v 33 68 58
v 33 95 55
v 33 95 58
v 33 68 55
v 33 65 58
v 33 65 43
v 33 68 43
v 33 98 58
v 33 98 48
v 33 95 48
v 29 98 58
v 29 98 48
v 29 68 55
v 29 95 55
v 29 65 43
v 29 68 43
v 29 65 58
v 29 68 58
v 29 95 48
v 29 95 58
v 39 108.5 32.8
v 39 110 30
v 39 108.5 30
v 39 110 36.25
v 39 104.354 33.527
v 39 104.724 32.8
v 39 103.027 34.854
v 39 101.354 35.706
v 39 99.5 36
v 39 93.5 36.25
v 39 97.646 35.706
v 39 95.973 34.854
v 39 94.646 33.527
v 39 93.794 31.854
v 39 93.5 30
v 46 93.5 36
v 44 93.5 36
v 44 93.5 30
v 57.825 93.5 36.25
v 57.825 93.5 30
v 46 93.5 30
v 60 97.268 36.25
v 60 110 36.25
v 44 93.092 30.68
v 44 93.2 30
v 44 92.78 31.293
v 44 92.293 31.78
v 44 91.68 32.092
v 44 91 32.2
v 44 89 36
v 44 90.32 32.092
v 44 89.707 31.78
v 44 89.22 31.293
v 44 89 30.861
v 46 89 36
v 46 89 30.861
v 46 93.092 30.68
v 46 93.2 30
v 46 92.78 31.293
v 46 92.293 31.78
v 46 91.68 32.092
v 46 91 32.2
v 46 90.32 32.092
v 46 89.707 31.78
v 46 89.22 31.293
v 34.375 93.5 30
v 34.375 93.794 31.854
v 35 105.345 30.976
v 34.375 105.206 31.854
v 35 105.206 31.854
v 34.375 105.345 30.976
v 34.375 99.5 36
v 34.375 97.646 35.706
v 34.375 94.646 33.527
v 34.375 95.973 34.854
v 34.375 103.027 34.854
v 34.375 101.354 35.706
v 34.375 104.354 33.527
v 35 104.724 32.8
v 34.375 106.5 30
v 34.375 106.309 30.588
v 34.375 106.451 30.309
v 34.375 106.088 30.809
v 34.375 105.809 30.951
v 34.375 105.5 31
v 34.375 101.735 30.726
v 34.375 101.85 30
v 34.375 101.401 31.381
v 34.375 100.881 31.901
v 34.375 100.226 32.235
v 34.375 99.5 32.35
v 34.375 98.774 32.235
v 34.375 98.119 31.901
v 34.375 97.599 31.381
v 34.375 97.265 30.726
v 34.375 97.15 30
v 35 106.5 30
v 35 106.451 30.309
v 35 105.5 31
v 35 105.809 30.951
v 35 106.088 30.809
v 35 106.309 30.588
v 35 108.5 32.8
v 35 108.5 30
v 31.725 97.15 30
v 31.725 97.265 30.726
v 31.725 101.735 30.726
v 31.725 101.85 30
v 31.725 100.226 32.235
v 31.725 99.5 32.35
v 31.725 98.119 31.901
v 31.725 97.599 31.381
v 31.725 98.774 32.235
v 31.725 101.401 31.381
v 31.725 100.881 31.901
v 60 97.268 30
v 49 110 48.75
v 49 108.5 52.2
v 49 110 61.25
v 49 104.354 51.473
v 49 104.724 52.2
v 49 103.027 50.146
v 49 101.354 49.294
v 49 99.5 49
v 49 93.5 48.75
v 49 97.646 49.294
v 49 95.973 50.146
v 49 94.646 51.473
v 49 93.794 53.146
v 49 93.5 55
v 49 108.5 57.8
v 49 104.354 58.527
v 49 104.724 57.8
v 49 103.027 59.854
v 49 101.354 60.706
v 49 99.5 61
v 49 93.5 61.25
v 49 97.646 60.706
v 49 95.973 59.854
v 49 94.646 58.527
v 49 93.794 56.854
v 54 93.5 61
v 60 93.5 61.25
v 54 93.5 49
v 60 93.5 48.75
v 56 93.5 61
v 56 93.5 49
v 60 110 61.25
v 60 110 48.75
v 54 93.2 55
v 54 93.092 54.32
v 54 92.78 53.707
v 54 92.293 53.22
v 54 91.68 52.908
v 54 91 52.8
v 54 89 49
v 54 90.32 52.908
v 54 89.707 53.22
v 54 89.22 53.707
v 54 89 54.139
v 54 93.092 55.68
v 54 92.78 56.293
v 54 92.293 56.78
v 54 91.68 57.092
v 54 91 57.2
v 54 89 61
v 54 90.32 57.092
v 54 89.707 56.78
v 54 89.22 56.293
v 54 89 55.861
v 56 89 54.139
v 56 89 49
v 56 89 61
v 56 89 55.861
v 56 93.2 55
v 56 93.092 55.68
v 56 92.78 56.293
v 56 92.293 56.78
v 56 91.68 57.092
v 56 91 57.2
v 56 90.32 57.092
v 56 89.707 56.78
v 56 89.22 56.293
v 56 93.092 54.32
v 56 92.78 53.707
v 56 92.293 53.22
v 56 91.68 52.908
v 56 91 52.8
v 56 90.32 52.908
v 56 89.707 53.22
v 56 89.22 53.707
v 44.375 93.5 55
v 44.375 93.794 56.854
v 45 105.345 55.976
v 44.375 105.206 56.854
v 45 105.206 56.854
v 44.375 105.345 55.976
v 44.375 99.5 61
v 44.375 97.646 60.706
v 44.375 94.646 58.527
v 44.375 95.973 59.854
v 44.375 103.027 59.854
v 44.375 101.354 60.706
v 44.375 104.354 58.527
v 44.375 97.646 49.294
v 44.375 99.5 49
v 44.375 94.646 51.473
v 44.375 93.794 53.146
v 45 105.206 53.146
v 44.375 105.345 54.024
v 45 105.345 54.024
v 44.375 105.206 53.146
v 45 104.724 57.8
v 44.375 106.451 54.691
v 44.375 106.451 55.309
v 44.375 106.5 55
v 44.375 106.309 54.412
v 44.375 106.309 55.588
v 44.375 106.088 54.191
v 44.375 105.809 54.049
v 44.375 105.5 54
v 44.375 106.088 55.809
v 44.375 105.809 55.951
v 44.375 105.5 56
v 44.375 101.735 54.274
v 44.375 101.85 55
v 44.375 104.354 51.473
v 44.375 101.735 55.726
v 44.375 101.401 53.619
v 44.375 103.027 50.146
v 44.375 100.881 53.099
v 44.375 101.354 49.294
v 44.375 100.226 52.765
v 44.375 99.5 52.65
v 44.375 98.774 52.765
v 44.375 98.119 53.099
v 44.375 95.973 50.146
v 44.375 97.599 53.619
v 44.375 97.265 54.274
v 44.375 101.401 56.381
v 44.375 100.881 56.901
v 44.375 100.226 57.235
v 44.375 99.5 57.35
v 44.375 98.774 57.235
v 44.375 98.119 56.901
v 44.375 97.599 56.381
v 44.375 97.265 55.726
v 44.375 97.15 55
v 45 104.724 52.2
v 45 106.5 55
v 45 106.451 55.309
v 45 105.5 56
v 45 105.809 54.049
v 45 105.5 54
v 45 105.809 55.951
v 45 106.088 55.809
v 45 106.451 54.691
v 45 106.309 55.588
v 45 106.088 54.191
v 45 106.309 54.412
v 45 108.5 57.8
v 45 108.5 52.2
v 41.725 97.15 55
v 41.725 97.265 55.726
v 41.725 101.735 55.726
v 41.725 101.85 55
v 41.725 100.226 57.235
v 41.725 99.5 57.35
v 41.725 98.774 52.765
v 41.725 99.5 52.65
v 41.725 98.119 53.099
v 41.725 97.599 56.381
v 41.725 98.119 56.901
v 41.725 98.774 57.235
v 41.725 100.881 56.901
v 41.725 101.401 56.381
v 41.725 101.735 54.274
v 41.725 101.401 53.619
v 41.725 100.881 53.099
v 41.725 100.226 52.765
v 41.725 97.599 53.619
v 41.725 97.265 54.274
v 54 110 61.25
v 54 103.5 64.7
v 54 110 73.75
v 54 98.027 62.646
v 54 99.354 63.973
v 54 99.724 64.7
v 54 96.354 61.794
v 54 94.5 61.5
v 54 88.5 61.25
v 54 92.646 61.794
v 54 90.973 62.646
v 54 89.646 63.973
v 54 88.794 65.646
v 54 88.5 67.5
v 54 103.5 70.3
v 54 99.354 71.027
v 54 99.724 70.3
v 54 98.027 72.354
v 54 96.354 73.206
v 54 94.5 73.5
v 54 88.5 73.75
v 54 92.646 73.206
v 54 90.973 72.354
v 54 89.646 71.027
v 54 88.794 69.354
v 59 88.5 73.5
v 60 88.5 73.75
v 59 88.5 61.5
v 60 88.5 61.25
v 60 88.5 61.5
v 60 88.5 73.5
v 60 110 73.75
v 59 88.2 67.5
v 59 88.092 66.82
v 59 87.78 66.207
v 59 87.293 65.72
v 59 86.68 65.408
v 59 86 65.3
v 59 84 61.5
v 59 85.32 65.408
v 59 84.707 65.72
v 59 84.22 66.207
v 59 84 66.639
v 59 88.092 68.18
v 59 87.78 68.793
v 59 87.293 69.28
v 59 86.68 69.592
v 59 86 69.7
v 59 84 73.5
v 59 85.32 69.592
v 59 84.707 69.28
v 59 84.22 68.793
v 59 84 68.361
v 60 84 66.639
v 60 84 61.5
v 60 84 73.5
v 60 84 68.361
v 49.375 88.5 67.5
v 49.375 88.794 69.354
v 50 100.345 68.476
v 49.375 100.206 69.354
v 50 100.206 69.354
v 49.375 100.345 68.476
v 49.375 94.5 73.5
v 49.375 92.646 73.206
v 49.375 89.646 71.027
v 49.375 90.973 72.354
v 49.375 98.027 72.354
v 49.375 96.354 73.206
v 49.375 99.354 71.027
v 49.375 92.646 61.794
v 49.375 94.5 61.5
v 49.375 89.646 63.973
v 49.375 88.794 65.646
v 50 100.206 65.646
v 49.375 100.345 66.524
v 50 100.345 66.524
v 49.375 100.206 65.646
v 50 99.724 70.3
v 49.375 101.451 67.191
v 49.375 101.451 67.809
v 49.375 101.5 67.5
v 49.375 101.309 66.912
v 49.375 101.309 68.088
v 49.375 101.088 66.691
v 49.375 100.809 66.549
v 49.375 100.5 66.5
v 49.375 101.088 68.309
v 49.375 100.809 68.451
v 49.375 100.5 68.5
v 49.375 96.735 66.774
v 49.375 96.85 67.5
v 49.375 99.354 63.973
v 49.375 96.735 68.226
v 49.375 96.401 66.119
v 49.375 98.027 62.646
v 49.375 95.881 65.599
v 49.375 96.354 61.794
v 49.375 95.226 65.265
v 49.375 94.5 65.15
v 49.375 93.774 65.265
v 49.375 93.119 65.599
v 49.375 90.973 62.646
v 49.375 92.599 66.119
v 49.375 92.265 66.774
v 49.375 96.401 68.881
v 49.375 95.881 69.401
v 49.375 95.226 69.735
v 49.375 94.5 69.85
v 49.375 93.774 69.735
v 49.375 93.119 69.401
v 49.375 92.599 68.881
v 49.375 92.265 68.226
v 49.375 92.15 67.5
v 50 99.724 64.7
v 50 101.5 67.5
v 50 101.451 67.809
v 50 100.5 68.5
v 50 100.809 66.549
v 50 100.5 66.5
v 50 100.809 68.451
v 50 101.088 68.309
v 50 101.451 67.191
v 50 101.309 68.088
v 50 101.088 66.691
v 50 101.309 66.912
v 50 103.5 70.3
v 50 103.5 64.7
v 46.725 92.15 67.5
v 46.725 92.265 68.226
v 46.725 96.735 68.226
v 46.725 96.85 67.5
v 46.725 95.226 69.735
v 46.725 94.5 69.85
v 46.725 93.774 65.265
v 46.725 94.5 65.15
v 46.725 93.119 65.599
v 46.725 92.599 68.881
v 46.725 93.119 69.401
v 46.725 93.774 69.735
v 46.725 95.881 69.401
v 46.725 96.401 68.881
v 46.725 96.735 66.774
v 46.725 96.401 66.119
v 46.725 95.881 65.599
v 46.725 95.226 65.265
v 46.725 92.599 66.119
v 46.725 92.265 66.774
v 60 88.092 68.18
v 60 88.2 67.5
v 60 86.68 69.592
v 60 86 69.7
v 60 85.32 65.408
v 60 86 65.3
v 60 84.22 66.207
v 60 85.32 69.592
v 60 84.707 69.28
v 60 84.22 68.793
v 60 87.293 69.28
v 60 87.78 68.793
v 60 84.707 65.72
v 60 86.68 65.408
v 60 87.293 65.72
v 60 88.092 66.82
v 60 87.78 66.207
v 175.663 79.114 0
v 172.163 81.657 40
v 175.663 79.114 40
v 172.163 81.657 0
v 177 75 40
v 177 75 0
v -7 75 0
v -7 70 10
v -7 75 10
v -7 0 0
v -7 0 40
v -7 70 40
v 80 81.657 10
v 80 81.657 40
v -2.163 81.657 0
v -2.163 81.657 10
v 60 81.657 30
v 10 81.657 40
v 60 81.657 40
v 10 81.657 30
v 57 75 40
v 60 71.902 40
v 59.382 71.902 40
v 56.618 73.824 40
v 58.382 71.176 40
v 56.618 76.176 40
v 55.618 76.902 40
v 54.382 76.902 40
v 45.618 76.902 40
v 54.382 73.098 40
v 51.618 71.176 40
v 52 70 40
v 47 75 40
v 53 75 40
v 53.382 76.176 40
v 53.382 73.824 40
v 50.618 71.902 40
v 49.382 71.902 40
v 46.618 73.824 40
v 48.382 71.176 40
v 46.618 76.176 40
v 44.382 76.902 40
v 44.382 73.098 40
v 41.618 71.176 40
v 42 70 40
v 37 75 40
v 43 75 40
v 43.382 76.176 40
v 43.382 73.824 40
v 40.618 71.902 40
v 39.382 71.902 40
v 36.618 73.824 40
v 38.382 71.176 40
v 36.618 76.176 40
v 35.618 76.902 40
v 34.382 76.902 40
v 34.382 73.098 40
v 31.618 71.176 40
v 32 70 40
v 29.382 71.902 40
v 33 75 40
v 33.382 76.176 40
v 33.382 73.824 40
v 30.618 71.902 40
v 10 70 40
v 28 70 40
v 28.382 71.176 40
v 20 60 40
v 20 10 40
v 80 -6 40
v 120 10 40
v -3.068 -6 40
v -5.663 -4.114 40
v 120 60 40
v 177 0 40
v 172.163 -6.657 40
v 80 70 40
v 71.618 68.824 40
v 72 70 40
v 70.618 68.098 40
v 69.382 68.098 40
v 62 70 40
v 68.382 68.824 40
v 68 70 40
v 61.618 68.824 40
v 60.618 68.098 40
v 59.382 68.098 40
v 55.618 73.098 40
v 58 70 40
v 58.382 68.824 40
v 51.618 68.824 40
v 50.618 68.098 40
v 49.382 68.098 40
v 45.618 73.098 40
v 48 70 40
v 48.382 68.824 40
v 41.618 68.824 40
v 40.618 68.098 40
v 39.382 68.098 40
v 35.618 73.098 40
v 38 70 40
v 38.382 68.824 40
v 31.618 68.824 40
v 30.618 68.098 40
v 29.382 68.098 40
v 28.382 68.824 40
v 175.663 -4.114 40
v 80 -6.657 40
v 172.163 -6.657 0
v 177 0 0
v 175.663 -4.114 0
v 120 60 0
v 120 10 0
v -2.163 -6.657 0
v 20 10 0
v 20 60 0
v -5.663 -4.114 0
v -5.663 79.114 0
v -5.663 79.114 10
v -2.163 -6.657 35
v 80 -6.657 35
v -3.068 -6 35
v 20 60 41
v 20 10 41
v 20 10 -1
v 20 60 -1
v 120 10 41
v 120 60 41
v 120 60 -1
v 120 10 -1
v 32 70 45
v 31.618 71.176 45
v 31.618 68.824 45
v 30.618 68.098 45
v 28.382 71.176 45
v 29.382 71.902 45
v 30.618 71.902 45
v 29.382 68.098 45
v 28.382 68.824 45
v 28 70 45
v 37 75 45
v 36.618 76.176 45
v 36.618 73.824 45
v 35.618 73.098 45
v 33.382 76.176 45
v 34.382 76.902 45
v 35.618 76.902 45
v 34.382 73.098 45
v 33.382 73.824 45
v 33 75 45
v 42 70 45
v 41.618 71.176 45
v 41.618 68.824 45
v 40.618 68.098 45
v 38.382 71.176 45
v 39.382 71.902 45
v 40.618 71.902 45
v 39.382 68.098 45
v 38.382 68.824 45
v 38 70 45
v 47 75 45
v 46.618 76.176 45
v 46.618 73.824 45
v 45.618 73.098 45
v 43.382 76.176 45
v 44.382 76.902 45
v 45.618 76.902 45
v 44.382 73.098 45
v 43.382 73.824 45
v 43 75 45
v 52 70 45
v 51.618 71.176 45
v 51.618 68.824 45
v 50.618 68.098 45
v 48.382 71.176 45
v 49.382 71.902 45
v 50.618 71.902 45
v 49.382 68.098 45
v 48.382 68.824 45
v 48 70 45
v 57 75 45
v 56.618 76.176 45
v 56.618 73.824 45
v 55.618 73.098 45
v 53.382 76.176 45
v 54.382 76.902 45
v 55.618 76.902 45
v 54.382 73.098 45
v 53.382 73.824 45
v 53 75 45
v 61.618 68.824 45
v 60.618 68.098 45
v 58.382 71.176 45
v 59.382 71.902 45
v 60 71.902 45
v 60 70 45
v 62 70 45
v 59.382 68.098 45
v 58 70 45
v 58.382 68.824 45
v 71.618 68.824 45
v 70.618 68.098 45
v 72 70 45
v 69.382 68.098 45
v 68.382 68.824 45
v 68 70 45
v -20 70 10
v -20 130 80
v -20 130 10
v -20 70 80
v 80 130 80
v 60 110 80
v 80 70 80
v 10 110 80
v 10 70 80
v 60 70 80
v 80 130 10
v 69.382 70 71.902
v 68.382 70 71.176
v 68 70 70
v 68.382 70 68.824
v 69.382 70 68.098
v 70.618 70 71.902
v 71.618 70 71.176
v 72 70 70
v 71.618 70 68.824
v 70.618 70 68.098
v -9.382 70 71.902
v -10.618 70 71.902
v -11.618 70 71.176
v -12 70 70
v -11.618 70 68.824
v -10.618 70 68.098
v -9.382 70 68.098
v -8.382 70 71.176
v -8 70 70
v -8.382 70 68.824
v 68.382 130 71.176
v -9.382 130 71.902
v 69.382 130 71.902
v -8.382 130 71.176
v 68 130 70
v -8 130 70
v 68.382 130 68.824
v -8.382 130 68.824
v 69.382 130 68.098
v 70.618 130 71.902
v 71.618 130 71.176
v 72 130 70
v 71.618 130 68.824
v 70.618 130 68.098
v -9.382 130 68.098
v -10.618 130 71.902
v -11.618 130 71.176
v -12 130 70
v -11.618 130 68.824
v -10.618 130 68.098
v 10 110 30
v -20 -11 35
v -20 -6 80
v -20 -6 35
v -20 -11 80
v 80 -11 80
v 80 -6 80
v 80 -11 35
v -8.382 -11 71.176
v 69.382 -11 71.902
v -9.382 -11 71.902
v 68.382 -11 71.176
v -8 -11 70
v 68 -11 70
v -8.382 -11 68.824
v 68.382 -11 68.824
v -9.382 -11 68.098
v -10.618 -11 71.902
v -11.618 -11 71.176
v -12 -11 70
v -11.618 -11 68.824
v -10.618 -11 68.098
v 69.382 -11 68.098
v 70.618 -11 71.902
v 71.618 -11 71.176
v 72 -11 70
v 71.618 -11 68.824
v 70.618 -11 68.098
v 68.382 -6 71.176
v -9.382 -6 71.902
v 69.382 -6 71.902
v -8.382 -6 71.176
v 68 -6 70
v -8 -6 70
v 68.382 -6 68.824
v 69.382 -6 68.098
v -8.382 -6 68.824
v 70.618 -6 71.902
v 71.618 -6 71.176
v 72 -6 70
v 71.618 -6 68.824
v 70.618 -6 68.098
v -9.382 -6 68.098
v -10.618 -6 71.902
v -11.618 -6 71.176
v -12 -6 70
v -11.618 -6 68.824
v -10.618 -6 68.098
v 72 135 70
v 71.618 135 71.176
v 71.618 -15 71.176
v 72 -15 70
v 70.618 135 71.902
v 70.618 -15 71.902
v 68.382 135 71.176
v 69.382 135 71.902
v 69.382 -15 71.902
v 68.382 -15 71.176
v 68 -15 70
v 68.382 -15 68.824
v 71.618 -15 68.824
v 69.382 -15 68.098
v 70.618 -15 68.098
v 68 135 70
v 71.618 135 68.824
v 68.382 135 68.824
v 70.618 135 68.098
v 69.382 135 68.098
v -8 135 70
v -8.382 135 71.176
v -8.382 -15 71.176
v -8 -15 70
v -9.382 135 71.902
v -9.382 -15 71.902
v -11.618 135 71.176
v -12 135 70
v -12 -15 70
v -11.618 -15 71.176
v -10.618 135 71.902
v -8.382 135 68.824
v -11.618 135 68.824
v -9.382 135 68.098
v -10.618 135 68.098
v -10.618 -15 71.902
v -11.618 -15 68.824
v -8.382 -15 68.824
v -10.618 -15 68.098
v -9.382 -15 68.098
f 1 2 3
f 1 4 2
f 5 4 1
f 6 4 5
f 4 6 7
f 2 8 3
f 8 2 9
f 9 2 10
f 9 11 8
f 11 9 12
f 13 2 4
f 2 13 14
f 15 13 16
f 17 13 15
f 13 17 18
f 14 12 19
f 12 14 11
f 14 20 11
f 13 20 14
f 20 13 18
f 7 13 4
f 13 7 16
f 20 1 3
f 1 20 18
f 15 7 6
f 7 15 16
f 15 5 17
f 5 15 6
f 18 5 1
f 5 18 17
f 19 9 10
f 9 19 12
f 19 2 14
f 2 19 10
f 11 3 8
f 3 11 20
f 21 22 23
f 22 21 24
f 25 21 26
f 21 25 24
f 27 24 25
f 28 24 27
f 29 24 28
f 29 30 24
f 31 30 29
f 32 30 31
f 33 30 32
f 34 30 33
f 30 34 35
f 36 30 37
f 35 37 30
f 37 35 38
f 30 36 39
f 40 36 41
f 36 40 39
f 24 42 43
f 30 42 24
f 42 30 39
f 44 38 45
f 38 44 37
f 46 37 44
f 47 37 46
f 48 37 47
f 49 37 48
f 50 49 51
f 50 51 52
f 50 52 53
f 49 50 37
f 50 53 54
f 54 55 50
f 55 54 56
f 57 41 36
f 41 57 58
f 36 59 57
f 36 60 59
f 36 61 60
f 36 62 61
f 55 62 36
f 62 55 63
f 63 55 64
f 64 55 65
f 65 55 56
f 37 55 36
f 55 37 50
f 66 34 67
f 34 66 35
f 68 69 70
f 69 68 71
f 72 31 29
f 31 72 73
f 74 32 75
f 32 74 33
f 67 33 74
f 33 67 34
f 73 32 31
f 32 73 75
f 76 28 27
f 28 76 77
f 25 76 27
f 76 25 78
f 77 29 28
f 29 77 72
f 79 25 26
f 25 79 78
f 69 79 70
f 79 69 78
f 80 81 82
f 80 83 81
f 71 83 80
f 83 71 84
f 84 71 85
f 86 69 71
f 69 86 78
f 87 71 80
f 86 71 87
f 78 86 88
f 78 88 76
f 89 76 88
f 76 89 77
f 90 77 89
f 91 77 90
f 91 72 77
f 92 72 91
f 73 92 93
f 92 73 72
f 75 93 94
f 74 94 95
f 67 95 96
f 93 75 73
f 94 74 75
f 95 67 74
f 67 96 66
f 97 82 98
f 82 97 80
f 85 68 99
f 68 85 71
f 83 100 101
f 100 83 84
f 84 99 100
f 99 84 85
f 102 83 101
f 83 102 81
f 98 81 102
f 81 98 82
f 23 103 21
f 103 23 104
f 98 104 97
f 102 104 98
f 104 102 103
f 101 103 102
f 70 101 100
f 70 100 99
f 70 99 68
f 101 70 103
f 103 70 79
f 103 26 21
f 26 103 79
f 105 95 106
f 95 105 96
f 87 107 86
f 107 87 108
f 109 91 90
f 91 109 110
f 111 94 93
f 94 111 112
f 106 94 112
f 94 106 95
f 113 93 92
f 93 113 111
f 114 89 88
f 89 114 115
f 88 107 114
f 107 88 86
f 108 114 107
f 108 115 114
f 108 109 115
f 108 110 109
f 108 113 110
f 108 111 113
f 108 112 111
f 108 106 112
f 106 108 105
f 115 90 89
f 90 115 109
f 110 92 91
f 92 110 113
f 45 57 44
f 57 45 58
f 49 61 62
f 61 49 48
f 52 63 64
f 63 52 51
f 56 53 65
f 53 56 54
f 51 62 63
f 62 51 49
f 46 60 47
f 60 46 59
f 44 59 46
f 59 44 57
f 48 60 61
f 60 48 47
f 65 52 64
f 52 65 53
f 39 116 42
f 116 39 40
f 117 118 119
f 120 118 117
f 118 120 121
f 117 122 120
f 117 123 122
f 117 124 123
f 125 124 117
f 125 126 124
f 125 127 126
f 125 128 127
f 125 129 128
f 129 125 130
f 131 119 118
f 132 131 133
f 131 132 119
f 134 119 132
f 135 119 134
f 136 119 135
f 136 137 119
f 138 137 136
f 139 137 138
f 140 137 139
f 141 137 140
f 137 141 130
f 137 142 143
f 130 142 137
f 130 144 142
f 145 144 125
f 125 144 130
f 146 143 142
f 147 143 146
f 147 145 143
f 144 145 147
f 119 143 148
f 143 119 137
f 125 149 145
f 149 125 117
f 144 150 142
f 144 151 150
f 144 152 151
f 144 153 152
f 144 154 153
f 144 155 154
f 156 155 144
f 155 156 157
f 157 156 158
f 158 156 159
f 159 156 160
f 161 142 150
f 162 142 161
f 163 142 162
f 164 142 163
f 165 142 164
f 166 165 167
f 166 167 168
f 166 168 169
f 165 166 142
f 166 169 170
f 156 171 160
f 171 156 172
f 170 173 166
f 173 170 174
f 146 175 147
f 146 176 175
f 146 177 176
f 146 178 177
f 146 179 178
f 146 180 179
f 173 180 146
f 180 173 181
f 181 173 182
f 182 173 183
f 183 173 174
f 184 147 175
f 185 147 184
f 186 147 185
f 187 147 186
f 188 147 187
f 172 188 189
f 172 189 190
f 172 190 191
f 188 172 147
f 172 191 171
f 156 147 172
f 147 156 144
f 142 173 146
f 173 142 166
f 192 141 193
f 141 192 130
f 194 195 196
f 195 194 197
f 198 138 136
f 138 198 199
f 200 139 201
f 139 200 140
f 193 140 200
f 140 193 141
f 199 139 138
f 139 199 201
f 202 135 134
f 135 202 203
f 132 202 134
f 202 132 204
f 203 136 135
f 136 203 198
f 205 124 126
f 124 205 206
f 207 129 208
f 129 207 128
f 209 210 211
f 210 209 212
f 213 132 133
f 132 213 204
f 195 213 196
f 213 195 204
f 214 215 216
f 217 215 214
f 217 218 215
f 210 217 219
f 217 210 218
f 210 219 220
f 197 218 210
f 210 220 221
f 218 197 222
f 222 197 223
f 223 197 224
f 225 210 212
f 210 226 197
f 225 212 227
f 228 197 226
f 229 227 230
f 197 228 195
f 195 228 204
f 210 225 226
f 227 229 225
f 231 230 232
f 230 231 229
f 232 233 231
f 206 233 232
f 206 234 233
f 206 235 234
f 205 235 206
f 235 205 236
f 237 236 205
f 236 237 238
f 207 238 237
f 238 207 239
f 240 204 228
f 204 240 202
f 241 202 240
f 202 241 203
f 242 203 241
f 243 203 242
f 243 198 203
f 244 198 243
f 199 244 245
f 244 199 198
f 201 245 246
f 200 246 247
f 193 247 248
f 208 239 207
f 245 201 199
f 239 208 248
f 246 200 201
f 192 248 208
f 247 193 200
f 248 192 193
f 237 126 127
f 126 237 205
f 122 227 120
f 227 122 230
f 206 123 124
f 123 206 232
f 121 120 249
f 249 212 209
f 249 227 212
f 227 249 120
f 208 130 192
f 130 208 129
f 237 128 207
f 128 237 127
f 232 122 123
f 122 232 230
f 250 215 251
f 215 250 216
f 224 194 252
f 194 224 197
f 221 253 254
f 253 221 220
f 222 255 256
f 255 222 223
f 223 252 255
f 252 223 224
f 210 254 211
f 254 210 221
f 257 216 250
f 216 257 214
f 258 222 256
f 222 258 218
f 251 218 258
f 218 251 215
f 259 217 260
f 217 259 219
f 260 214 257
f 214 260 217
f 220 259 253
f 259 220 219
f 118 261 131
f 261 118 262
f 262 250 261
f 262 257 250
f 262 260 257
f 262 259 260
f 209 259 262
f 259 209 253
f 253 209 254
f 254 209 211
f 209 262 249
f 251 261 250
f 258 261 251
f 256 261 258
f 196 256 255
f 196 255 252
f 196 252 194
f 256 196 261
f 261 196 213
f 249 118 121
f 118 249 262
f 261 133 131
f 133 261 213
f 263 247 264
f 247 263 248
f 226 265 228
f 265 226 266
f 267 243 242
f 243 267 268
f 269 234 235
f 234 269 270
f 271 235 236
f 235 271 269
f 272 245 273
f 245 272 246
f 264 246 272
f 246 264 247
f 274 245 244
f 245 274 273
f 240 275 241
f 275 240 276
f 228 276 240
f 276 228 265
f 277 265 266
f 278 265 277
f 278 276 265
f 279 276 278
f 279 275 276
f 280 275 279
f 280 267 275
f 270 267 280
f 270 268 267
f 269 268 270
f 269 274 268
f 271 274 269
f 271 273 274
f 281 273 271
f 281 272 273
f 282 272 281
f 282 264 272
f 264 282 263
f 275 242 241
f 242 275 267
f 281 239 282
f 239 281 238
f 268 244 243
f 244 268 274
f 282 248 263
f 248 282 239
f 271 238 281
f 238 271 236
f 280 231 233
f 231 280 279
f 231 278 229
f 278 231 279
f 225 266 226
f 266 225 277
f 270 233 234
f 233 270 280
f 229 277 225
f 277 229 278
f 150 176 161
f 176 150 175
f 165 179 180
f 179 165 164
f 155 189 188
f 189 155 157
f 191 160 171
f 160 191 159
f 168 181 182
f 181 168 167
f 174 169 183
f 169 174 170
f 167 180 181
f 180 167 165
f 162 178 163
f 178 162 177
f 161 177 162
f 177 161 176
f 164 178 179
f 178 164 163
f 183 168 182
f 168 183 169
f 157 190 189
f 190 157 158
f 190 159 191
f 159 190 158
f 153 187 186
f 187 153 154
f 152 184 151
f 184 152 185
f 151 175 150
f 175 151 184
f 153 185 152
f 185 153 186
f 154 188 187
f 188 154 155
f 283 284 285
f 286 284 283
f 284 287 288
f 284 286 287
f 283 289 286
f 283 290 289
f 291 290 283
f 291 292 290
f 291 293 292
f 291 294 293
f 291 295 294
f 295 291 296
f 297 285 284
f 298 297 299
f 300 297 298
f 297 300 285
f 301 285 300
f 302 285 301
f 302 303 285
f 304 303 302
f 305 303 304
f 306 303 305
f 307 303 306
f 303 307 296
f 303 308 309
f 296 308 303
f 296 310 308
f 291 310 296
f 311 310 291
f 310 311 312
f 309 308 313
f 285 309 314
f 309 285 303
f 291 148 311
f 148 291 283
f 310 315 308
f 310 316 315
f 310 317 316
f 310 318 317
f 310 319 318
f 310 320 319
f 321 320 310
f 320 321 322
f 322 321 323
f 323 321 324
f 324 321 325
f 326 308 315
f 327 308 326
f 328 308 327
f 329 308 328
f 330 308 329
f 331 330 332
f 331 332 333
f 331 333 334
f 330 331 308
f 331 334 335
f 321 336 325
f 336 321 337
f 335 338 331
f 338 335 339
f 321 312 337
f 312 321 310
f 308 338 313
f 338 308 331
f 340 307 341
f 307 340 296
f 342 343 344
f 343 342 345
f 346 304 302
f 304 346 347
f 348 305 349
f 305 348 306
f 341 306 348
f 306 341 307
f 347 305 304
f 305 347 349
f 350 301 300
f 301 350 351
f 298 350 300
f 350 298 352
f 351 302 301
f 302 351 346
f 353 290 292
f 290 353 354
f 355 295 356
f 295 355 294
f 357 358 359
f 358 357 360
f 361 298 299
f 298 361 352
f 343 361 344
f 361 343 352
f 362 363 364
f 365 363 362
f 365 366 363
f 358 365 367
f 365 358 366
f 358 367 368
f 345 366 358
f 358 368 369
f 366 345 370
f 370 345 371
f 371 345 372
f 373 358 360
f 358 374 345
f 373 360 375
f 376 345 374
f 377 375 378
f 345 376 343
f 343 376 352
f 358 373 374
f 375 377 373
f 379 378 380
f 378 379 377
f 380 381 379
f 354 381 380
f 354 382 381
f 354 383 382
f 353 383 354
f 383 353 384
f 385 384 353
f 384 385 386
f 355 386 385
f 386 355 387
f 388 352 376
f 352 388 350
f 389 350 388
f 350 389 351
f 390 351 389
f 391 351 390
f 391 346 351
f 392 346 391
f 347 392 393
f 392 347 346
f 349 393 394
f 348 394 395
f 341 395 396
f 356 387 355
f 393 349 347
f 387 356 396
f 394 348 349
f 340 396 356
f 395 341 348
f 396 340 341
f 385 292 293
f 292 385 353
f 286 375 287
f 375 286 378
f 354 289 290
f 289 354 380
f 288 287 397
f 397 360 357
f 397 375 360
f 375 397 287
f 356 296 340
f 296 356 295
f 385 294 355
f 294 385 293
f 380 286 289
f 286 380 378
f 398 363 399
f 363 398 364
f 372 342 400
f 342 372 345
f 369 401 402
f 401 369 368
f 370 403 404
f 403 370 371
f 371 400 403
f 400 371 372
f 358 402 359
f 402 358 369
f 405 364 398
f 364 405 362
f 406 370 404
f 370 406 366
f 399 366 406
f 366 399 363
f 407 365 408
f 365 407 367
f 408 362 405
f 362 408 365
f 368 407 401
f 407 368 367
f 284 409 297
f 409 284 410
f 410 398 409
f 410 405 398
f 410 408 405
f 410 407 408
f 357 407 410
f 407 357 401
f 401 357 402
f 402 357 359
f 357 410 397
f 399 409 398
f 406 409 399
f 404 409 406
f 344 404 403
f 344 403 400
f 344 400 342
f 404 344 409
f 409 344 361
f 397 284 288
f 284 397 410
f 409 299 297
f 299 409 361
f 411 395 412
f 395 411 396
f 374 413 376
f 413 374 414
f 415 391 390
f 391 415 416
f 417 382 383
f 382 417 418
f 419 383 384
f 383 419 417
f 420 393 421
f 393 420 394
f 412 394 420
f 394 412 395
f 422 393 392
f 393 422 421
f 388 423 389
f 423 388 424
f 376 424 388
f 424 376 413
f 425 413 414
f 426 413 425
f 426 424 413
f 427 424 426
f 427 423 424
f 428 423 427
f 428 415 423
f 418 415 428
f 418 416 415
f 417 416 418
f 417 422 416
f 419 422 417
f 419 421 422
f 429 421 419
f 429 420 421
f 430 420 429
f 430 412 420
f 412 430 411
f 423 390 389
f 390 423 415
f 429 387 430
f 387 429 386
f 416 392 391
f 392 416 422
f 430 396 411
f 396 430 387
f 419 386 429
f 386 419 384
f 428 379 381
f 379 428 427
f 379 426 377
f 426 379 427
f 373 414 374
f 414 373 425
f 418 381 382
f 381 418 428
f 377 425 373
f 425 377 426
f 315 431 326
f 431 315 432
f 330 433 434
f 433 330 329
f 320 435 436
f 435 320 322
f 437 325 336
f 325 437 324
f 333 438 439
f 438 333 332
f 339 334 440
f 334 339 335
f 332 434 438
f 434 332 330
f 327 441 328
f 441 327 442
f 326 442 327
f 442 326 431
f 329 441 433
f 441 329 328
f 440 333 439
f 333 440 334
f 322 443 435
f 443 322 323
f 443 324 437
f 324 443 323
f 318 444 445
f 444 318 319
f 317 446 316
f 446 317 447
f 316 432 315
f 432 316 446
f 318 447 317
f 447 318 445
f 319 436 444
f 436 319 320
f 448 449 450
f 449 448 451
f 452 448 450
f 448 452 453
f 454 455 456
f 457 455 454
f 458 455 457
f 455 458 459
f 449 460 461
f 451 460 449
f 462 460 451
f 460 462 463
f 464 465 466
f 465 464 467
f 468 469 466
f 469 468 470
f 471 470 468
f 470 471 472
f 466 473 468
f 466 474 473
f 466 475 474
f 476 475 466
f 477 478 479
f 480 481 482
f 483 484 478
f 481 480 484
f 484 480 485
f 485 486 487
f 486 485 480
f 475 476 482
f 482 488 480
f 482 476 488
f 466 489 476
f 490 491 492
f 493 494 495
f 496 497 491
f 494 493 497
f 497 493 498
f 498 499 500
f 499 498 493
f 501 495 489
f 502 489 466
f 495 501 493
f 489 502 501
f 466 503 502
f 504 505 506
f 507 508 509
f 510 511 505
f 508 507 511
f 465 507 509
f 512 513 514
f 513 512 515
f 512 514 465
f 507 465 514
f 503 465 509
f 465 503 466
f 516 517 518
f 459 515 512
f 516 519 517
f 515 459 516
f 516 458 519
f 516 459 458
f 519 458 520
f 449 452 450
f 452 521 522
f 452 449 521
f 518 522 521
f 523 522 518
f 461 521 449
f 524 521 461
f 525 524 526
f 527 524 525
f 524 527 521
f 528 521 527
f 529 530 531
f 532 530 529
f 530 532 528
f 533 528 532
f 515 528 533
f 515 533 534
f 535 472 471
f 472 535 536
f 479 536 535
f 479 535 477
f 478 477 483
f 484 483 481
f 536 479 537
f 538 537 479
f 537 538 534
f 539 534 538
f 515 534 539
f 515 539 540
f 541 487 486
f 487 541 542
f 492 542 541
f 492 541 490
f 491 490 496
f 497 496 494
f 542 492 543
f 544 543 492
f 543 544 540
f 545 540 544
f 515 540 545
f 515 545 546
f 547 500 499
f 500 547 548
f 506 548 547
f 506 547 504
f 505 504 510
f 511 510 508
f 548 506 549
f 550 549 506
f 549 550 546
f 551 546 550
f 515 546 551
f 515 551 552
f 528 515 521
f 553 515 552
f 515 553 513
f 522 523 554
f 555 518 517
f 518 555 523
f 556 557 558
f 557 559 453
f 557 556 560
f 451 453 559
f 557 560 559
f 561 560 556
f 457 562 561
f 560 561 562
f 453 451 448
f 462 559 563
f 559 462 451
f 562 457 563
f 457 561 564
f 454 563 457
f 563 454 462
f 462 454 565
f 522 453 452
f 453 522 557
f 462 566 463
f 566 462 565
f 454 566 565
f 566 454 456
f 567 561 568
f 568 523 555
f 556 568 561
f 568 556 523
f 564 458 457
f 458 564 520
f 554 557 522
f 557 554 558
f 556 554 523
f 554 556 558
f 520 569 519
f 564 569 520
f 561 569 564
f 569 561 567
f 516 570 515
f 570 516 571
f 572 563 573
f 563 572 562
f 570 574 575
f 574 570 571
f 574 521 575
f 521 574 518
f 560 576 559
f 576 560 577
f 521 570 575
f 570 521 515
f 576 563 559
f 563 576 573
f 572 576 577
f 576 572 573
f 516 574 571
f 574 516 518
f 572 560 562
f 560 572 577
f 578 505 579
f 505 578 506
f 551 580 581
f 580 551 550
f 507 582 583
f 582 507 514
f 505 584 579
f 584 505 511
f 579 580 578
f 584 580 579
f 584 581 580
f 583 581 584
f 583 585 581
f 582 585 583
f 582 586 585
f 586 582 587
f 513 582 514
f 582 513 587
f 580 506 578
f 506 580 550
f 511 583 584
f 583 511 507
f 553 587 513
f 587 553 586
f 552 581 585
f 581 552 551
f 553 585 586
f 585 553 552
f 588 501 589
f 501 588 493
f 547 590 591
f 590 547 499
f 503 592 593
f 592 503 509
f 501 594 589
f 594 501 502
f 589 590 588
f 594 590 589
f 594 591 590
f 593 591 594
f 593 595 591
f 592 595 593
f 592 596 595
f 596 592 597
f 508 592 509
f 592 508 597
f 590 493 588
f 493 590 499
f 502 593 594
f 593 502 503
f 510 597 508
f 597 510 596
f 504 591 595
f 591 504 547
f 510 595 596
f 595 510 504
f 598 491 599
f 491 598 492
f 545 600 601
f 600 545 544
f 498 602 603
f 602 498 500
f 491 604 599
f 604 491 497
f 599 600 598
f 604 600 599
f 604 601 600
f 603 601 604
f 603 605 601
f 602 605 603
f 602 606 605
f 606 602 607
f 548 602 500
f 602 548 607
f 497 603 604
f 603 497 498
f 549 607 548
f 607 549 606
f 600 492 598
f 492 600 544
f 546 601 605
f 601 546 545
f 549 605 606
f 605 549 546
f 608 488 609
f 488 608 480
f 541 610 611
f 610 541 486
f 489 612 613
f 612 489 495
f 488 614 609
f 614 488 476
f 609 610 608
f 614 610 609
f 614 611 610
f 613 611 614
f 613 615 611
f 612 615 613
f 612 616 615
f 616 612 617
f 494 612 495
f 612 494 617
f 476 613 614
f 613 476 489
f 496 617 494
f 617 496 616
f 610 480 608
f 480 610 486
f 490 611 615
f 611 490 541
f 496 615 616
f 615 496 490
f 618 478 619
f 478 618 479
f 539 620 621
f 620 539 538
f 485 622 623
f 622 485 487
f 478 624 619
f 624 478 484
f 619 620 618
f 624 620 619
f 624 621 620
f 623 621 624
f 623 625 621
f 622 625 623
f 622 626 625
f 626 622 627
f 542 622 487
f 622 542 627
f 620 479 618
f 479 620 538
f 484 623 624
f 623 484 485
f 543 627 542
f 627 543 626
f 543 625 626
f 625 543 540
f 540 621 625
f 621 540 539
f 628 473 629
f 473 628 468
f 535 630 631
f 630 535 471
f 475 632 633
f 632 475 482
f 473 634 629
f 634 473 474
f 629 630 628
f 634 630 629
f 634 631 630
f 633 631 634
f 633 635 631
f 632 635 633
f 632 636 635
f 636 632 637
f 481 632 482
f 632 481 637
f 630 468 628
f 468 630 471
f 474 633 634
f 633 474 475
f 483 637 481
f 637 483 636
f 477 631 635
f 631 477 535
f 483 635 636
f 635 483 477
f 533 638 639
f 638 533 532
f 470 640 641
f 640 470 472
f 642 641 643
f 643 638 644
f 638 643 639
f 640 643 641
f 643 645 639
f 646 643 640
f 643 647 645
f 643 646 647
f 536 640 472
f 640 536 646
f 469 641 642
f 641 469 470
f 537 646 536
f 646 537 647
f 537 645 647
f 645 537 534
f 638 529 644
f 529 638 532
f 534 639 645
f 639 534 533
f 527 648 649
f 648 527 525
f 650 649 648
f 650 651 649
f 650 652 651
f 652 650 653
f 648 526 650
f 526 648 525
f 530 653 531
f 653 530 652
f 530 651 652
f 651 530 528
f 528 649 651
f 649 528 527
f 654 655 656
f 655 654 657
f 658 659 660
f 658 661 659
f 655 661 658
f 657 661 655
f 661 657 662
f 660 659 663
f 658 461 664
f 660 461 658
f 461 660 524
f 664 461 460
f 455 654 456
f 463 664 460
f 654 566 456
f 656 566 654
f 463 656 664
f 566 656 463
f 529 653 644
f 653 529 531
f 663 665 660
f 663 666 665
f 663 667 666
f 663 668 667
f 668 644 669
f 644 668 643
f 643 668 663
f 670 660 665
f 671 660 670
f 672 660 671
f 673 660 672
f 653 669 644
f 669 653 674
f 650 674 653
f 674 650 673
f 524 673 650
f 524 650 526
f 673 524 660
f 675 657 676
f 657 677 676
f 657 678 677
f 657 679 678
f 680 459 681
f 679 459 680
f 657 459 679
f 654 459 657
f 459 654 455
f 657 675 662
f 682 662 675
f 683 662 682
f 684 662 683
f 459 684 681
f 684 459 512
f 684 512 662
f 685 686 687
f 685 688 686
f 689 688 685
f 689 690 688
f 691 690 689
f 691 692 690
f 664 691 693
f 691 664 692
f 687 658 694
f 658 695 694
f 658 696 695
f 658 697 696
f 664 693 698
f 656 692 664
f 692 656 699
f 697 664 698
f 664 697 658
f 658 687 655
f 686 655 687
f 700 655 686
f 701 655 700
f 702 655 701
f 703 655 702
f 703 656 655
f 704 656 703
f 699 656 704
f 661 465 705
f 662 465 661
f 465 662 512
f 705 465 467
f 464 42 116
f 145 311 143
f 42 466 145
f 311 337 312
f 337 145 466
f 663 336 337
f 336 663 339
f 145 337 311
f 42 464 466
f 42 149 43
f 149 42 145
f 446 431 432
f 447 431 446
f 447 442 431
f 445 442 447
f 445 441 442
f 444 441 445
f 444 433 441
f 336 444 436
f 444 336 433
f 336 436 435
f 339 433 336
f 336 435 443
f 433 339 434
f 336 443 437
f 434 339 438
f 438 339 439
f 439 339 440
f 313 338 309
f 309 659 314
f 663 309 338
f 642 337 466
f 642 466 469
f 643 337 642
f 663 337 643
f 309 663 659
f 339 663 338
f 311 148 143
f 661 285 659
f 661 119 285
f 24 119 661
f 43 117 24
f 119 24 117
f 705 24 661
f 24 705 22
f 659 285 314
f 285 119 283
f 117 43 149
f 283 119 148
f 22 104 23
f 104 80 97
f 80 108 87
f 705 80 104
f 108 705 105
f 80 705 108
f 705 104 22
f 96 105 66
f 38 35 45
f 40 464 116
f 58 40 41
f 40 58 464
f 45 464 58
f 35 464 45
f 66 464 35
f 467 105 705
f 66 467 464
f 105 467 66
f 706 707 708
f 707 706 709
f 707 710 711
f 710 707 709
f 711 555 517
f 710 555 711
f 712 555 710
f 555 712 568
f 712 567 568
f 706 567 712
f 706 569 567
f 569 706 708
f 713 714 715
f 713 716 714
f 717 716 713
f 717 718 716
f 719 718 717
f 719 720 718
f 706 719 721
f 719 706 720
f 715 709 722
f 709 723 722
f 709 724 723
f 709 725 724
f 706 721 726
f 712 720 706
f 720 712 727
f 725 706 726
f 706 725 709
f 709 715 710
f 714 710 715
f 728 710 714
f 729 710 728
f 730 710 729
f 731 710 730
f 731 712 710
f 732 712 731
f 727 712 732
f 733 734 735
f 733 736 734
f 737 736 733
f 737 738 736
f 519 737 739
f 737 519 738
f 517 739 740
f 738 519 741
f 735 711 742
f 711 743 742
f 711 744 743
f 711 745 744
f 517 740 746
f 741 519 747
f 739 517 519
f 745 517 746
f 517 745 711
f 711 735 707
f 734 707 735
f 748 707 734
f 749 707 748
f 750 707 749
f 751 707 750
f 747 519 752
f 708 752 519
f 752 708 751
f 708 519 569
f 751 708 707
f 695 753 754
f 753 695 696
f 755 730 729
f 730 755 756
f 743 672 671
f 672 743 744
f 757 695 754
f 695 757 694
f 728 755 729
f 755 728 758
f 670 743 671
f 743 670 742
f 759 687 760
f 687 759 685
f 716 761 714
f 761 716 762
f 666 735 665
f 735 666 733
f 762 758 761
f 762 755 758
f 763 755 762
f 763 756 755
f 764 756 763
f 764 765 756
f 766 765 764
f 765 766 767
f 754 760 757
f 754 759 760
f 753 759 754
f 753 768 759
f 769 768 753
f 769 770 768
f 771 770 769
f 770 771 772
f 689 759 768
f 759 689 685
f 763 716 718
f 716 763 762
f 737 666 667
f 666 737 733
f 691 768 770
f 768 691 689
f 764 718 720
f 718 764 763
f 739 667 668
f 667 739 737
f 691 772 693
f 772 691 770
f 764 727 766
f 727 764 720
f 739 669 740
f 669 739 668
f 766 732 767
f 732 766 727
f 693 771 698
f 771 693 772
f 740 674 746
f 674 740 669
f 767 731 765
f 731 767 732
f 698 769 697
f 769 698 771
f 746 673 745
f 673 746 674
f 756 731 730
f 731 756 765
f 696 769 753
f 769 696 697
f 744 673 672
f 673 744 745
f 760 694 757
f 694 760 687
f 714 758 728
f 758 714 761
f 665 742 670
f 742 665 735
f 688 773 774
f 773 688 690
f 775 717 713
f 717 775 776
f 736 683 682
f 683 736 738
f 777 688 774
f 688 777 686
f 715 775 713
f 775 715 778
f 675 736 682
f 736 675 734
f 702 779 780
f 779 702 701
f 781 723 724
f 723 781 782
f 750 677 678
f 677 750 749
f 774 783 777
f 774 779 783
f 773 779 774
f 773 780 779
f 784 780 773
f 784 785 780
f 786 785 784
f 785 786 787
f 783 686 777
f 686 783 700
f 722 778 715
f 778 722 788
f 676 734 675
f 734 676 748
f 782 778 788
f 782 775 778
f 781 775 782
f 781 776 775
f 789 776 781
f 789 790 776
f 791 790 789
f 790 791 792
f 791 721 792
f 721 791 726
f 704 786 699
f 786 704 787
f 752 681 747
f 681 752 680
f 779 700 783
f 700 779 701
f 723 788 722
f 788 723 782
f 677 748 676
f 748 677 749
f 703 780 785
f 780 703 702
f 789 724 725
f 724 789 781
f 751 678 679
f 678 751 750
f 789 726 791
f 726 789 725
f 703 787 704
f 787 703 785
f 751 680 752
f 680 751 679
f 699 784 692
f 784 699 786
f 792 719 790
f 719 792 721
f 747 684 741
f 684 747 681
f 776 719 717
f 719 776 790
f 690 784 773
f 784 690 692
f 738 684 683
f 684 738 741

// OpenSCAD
$fn=10;
servoposx=105;
servoposy=50;
servoposz=30;

difference(){
union(){
    translate([-20,70,10]) color("Black") cube([100,60,70]);

}
    union(){
        translate([10,60,30]) #cube([50,50,60]);            

    }
}

        translate([servoposy,servoposx,servoposz]) rotate([90,0,270]) #9g_motor()
        translate([servoposy+5,servoposx-5,servoposz+12.5]) rotate([90,0,270]) #9g_motor();
        translate([servoposy+10,servoposx,servoposz+25]) rotate([90,0,270]) #9g_motor();
        translate([servoposy+15,servoposx-5,servoposz+37.5]) rotate([90,0,270]) #9g_motor();


translate([-20,-11,35]) color("Black") cube([100,5,70-35+10]);
translate([70,135,70]) rotate([90,00,0]) color("Grey") cylinder(r=2,h=150);
translate([-10,135,70]) rotate([90,00,0]) color("Grey") cylinder(r=2,h=150);


translate([25,68,37]) color("White")  armpje(4,30,10,15);
telefoon();


module armpje(dikte,lengte,hoogteservo,hoogtepootje){
    union(){
          translate([dikte,0,21]) rotate([270,0,0]) cube([dikte,3,lengte]);    
          translate([dikte,0,21]) rotate([180,0,0]) cube([dikte,3,hoogtepootje]);
          translate([dikte,lengte,21]) rotate([180,0,0]) cube([dikte,3,hoogteservo]);        
    }
}

module armpjerond(dikte,lengte){
    union(){
        translate([dikte,0,21]) rotate([0,180,0]) cube([dikte,3,lengte]);    
        translate([0,19,-10]) cube([dikte,3,10]); 
        difference(){
            rotate([0,90,0]) cylinder(r=22,h=dikte);
            rotate([-1,90,0]) cylinder(r=19,h=10);
            translate([-1,-22,0]) cube([10,22,22]);
            translate([-10,-32,-72]) cube([20,54,72]);
        }
        
    }
}


module telefoon(){
    //telefoon body
    minkowski() {
        cube([170,75,20]);
        cylinder(r=7,h=20);
    }
    //telefon scherm
    color("green") translate([20,10,-1]) cube([100,50,42]);
    //knopjes
    translate([30,70,00]) color("Blue") cylinder(r=2,h=45);
    translate([35,75,00]) color("Blue") cylinder(r=2,h=45);
    translate([40,70,00]) color("Blue") cylinder(r=2,h=45);
    translate([45,75,00]) color("Blue") cylinder(r=2,h=45);
    translate([50,70,00]) color("Blue") cylinder(r=2,h=45);
    translate([55,75,00]) color("Blue") cylinder(r=2,h=45);
    translate([60,70,00]) color("Blue") cylinder(r=2,h=45);
    translate([65,75,00]) color("Blue") cylinder(r=2,h=45);
    translate([70,70,00]) color("Blue") cylinder(r=2,h=45);
    translate([75,75,00]) color("Blue") cylinder(r=2,h=45);
}



module 9g_motor(){
	difference(){			
		union(){
			color("Blue") cube([23,12.5,22], center=true);
			color("Blue") translate([0,0,5]) cube([32,12,2], center=true);
			color("Blue") translate([5.5,0,2.75]) cylinder(r=6, h=25.75, $fn=20, center=true);
			color("Blue") translate([-.5,0,2.75]) cylinder(r=1, h=25.75, $fn=20, center=true);
			color("Blue") translate([-1,0,2.75]) cube([5,5.6,24.5], center=true);		
			color("white") translate([5.5,0,3.65]) cylinder(r=2.35, h=29.25, $fn=20, center=true);				
		}
		translate([10,0,-11]) rotate([0,-30,0]) cube([8,13,4], center=true);
		for ( hole = [14,-14] ){
			translate([hole,0,5]) cylinder(r=2.2, h=4, $fn=20, center=true);
		}	
	}
}
